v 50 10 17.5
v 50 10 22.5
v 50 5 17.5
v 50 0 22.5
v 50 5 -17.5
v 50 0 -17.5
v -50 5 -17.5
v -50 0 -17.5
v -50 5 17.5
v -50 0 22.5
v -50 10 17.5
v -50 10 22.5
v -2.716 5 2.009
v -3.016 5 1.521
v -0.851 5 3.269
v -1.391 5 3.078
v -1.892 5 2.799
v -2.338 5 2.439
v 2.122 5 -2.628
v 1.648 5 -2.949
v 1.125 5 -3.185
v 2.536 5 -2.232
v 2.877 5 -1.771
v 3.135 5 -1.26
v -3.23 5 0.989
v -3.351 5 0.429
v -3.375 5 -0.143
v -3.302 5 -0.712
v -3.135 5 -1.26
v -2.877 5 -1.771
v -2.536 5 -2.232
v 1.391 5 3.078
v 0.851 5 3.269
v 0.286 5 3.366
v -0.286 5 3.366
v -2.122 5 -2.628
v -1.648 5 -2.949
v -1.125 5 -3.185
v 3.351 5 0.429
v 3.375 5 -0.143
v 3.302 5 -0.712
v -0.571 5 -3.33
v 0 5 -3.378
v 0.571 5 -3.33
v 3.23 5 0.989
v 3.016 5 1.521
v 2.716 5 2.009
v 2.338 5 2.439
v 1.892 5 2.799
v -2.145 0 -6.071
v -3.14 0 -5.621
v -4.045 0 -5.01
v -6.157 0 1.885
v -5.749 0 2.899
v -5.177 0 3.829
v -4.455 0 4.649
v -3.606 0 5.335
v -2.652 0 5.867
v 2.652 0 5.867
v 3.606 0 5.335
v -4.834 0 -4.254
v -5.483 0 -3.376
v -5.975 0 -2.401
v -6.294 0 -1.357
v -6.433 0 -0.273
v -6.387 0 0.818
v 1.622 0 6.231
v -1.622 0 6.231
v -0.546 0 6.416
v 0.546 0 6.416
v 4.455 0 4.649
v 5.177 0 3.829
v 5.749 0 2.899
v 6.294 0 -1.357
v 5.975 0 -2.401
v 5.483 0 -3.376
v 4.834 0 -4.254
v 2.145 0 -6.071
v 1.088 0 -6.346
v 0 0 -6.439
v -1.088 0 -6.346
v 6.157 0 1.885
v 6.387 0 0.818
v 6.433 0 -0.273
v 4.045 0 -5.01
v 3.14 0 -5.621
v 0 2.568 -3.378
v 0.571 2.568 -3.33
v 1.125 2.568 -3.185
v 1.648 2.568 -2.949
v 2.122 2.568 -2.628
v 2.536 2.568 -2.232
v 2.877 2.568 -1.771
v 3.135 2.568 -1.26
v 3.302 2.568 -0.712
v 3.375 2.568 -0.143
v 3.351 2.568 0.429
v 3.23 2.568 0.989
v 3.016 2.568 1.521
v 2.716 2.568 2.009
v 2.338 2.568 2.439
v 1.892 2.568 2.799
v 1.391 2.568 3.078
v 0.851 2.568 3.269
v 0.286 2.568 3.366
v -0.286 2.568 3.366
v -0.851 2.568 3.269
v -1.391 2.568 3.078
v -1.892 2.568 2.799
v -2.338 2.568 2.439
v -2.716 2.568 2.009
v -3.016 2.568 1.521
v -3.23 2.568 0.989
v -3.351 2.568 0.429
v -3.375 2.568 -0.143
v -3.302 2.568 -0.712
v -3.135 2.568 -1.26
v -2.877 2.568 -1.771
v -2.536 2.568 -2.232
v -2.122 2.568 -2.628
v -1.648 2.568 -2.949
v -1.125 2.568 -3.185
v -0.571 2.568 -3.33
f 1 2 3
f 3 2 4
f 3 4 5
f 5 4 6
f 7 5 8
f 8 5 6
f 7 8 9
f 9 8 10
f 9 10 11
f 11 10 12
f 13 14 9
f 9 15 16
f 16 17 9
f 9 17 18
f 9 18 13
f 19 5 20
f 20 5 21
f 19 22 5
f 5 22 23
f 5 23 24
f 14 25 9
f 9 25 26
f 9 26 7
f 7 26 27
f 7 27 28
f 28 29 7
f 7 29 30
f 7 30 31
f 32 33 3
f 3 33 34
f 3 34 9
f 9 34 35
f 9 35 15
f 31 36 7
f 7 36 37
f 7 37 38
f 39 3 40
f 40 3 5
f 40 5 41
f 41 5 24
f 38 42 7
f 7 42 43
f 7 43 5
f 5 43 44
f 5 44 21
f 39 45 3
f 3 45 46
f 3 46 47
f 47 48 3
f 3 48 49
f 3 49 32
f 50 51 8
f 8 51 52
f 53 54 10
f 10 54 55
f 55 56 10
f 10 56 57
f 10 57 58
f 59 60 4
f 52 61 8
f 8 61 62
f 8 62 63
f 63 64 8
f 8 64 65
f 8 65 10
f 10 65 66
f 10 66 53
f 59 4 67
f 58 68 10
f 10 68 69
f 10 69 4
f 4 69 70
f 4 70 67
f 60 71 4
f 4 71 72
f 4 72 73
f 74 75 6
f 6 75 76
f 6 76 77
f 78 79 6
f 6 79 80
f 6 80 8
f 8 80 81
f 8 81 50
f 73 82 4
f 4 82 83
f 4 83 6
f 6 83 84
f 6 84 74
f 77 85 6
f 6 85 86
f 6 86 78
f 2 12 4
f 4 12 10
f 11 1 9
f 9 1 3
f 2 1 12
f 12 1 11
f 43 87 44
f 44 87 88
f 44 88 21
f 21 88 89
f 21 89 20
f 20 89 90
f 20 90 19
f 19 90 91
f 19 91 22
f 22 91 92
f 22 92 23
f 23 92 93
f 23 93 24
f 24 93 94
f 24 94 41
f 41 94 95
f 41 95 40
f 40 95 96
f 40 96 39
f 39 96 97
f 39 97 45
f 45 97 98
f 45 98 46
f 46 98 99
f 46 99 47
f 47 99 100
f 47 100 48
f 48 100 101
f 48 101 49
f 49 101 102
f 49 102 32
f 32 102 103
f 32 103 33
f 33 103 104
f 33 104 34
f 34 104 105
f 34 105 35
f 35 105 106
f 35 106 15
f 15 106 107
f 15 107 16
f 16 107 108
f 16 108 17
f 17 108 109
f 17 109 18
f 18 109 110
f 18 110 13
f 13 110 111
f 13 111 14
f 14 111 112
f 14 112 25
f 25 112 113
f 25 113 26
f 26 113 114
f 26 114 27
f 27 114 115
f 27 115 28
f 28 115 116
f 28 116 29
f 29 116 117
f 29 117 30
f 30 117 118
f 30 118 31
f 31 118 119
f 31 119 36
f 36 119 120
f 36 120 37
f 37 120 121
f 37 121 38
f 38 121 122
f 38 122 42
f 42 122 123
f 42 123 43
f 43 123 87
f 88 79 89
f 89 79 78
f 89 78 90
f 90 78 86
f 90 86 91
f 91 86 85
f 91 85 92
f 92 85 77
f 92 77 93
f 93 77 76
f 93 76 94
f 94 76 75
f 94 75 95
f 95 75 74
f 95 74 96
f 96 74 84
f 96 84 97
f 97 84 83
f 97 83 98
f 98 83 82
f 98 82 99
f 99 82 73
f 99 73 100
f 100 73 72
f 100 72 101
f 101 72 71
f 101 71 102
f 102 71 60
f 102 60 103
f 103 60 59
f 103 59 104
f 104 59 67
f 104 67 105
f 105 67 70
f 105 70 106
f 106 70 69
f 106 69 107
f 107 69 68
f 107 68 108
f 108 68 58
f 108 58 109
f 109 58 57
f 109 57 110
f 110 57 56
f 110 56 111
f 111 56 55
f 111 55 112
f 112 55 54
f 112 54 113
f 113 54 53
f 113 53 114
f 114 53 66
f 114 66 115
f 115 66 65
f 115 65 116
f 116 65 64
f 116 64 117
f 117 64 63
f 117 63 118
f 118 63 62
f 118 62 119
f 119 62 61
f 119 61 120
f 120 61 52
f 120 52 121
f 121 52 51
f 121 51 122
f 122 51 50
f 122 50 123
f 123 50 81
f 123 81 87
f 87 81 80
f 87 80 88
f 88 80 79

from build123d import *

# Parameters (mm, degrees)
SKETCH1_W                                           = 100
SKETCH1_H                                           = 35
BOSS_EXTRUDE1_DEPTH                                 = 5
SKETCH2_W                                           = 100
SKETCH2_H                                           = 5
BOSS_EXTRUDE2_DEPTH                                 = 10
CSK_FOR_1_4_FLAT_HEAD_MACHINE_SCREW_100_D           = 6.7564
CSK_FOR_1_4_FLAT_HEAD_MACHINE_SCREW_100_CSINK_D     = 12.8778
CSK_FOR_1_4_FLAT_HEAD_MACHINE_SCREW_100_CSINK_ANGLE = 100


with BuildPart() as part:
    # Sketch1 → Boss-Extrude1 (new body)
    with BuildSketch(Plane(origin=(0, 0, 0), x_dir=(1, 0, 0), z_dir=(0, 1, 0))):
        Rectangle(SKETCH1_W, SKETCH1_H)
    extrude(amount=BOSS_EXTRUDE1_DEPTH)

    # Sketch2 → Boss-Extrude2 (add)
    with BuildSketch(Plane(origin=(0, 0, 0), x_dir=(1, 0, 0), z_dir=(0, 1, 0))):
        with Locations((0, -20)):
            Rectangle(SKETCH2_W, SKETCH2_H)
    extrude(amount=BOSS_EXTRUDE2_DEPTH)

    # CSK for 1/4 Flat Head Machine Screw (100)1 (through all)
    with Locations(Plane(origin=(0, 0, 0), x_dir=(-1, 0, 0), z_dir=(0, -1, 0))):
        with Locations((0, 0)):
            CounterSinkHole(CSK_FOR_1_4_FLAT_HEAD_MACHINE_SCREW_100_D / 2, CSK_FOR_1_4_FLAT_HEAD_MACHINE_SCREW_100_CSINK_D / 2, counter_sink_angle=CSK_FOR_1_4_FLAT_HEAD_MACHINE_SCREW_100_CSINK_ANGLE)


solid = part.part
